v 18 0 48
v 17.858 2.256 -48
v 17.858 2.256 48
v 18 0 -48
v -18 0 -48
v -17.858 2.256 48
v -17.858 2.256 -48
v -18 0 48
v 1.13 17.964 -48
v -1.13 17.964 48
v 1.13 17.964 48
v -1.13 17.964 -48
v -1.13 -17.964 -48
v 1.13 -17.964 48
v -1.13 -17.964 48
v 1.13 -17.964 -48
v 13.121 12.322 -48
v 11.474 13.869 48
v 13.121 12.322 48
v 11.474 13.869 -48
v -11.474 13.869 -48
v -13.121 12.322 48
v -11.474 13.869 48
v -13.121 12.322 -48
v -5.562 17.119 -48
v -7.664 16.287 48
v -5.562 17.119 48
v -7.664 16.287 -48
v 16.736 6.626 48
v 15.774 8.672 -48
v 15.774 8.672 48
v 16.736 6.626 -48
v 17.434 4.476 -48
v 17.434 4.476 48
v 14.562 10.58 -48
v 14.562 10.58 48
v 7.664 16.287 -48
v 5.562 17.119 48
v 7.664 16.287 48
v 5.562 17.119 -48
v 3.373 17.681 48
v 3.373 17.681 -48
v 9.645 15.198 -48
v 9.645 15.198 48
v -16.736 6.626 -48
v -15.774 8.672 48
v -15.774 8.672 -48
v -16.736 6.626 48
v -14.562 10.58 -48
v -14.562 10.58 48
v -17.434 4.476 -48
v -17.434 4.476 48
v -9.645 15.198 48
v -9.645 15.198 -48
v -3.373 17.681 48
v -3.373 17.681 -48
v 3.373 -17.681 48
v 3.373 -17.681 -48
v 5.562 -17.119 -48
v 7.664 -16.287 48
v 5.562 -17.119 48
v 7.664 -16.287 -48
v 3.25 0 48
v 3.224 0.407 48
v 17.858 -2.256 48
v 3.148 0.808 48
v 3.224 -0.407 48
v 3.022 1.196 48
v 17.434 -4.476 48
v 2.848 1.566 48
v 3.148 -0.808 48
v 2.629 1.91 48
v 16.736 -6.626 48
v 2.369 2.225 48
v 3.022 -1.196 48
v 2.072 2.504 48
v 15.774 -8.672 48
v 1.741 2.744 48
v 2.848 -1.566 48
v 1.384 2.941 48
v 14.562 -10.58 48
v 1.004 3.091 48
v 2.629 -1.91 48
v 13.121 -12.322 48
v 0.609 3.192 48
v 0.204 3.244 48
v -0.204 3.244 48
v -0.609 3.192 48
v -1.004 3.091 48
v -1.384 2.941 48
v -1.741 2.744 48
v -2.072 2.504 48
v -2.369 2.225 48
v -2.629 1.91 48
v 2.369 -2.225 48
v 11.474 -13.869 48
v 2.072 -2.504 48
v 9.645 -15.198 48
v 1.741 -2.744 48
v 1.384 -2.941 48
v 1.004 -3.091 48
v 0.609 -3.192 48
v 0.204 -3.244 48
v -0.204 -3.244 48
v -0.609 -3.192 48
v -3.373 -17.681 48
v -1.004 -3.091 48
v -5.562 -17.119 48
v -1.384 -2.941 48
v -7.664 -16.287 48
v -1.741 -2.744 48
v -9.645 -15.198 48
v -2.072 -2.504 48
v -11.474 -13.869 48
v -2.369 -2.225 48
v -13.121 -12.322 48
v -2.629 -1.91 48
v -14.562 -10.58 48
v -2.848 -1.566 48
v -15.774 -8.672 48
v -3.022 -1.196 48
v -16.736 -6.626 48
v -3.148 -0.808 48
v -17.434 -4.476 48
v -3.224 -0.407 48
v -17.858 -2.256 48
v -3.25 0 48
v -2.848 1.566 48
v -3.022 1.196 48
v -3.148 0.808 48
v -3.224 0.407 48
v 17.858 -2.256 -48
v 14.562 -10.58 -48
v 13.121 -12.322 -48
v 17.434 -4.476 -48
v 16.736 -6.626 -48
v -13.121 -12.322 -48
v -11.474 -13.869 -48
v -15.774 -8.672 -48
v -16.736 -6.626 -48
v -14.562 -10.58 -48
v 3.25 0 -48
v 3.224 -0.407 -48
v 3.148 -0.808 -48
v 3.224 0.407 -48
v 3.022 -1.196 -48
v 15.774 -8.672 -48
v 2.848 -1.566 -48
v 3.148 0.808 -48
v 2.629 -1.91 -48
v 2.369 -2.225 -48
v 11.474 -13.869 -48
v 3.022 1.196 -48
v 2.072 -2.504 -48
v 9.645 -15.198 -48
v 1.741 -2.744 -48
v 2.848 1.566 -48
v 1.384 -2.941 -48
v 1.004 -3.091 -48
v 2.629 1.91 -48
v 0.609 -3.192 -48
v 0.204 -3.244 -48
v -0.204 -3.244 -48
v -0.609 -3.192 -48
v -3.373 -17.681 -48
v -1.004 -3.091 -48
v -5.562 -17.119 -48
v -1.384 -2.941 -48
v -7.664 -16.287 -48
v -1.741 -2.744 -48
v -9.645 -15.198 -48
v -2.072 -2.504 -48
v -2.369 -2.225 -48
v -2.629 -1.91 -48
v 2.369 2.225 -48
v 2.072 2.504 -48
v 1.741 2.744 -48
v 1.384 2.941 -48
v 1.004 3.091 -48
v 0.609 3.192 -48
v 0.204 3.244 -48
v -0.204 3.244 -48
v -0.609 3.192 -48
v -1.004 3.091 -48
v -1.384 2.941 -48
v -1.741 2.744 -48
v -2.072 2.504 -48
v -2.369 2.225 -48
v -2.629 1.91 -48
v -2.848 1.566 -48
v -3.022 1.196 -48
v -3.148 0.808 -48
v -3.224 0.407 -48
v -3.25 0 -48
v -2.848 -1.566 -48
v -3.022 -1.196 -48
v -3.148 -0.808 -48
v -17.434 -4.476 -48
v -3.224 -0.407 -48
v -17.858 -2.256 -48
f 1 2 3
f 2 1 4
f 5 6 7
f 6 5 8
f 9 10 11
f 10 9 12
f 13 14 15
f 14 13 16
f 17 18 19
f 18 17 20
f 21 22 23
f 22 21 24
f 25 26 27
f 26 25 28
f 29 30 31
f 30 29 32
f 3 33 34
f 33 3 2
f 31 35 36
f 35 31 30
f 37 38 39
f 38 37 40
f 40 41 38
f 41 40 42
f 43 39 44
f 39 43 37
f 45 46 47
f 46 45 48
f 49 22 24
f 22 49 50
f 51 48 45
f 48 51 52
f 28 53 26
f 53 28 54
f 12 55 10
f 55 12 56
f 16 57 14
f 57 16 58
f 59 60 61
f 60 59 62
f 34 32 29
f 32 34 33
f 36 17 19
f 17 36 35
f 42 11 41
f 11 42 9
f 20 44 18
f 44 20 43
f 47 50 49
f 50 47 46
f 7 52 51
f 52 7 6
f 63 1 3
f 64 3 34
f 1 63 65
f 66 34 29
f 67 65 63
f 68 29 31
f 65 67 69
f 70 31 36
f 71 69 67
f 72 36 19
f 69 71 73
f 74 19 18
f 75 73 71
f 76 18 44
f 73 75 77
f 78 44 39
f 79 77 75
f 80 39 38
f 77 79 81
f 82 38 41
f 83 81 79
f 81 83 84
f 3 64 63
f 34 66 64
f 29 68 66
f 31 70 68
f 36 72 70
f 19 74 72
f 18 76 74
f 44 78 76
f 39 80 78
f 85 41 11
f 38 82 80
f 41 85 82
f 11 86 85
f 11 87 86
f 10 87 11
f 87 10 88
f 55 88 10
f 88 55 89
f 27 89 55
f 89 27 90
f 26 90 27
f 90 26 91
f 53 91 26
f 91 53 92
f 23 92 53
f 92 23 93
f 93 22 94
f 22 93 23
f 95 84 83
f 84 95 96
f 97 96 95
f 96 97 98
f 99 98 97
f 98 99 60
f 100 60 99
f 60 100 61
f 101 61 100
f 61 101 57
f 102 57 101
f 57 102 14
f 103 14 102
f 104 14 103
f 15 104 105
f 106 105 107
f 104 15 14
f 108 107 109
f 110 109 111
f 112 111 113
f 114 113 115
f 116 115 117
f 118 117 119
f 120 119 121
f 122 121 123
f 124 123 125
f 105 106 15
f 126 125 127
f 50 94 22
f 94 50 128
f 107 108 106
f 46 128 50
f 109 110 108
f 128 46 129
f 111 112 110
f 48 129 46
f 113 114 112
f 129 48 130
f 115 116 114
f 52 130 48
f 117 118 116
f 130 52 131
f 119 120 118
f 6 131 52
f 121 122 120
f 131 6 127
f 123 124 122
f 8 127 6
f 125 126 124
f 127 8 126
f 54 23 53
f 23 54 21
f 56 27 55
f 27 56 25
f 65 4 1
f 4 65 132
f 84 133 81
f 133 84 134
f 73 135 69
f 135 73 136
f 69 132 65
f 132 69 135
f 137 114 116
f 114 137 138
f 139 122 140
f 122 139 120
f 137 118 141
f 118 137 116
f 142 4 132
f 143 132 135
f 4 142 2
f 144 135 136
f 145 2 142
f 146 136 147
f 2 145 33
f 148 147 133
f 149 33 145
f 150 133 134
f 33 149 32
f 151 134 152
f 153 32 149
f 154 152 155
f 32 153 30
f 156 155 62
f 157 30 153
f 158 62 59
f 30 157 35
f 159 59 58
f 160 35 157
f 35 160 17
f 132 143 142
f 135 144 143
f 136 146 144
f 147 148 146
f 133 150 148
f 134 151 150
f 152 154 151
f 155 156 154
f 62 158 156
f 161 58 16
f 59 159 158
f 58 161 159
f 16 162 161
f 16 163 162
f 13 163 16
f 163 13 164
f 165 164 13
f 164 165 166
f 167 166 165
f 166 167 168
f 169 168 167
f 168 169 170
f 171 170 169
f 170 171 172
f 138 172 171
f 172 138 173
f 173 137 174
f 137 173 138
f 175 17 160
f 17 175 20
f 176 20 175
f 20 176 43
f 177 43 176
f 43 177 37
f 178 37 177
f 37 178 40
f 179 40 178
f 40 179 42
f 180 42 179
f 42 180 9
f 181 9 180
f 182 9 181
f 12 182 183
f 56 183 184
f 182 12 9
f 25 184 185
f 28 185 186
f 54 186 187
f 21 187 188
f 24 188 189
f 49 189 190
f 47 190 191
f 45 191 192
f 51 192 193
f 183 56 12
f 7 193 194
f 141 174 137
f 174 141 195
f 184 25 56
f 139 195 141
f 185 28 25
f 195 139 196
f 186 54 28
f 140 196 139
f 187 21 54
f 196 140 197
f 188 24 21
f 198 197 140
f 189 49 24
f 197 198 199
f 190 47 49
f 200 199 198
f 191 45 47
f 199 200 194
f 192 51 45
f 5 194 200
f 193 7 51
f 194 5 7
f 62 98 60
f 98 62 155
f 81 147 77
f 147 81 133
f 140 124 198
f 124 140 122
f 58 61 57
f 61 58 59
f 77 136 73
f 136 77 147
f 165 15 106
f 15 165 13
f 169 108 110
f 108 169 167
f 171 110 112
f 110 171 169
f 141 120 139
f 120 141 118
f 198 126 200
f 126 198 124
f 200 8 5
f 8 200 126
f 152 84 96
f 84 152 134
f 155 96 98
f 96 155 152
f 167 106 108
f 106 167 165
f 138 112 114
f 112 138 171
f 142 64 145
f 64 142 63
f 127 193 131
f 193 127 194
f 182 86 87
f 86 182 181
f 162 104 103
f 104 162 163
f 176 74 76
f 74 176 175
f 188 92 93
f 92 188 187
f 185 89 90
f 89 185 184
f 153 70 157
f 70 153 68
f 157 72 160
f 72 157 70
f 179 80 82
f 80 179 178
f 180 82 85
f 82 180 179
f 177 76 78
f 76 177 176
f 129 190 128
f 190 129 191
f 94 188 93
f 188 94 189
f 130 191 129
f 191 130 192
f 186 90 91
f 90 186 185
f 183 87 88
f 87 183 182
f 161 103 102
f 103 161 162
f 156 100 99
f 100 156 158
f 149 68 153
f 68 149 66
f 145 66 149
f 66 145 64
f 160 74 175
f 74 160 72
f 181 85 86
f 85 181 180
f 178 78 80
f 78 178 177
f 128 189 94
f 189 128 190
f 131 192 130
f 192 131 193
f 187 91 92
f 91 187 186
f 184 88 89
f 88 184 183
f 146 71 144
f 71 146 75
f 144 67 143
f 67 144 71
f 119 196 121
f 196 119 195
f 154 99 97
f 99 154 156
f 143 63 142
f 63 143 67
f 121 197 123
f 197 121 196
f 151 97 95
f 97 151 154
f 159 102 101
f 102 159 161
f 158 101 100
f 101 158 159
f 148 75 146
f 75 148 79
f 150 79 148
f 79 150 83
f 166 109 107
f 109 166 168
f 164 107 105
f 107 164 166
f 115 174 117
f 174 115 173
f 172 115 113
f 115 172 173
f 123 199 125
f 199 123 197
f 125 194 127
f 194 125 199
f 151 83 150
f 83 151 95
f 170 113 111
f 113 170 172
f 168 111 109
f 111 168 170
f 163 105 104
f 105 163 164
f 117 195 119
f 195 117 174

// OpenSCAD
$fn = 50;


difference() {
	union() {
		translate(v = [0, 0, -48.0000000000]) {
			cylinder(h = 96, r = 18.0000000000);
		}
	}
	union() {
		translate(v = [0, 0, -100.0000000000]) {
			cylinder(h = 200, r = 3.2500000000);
		}
	}
}
